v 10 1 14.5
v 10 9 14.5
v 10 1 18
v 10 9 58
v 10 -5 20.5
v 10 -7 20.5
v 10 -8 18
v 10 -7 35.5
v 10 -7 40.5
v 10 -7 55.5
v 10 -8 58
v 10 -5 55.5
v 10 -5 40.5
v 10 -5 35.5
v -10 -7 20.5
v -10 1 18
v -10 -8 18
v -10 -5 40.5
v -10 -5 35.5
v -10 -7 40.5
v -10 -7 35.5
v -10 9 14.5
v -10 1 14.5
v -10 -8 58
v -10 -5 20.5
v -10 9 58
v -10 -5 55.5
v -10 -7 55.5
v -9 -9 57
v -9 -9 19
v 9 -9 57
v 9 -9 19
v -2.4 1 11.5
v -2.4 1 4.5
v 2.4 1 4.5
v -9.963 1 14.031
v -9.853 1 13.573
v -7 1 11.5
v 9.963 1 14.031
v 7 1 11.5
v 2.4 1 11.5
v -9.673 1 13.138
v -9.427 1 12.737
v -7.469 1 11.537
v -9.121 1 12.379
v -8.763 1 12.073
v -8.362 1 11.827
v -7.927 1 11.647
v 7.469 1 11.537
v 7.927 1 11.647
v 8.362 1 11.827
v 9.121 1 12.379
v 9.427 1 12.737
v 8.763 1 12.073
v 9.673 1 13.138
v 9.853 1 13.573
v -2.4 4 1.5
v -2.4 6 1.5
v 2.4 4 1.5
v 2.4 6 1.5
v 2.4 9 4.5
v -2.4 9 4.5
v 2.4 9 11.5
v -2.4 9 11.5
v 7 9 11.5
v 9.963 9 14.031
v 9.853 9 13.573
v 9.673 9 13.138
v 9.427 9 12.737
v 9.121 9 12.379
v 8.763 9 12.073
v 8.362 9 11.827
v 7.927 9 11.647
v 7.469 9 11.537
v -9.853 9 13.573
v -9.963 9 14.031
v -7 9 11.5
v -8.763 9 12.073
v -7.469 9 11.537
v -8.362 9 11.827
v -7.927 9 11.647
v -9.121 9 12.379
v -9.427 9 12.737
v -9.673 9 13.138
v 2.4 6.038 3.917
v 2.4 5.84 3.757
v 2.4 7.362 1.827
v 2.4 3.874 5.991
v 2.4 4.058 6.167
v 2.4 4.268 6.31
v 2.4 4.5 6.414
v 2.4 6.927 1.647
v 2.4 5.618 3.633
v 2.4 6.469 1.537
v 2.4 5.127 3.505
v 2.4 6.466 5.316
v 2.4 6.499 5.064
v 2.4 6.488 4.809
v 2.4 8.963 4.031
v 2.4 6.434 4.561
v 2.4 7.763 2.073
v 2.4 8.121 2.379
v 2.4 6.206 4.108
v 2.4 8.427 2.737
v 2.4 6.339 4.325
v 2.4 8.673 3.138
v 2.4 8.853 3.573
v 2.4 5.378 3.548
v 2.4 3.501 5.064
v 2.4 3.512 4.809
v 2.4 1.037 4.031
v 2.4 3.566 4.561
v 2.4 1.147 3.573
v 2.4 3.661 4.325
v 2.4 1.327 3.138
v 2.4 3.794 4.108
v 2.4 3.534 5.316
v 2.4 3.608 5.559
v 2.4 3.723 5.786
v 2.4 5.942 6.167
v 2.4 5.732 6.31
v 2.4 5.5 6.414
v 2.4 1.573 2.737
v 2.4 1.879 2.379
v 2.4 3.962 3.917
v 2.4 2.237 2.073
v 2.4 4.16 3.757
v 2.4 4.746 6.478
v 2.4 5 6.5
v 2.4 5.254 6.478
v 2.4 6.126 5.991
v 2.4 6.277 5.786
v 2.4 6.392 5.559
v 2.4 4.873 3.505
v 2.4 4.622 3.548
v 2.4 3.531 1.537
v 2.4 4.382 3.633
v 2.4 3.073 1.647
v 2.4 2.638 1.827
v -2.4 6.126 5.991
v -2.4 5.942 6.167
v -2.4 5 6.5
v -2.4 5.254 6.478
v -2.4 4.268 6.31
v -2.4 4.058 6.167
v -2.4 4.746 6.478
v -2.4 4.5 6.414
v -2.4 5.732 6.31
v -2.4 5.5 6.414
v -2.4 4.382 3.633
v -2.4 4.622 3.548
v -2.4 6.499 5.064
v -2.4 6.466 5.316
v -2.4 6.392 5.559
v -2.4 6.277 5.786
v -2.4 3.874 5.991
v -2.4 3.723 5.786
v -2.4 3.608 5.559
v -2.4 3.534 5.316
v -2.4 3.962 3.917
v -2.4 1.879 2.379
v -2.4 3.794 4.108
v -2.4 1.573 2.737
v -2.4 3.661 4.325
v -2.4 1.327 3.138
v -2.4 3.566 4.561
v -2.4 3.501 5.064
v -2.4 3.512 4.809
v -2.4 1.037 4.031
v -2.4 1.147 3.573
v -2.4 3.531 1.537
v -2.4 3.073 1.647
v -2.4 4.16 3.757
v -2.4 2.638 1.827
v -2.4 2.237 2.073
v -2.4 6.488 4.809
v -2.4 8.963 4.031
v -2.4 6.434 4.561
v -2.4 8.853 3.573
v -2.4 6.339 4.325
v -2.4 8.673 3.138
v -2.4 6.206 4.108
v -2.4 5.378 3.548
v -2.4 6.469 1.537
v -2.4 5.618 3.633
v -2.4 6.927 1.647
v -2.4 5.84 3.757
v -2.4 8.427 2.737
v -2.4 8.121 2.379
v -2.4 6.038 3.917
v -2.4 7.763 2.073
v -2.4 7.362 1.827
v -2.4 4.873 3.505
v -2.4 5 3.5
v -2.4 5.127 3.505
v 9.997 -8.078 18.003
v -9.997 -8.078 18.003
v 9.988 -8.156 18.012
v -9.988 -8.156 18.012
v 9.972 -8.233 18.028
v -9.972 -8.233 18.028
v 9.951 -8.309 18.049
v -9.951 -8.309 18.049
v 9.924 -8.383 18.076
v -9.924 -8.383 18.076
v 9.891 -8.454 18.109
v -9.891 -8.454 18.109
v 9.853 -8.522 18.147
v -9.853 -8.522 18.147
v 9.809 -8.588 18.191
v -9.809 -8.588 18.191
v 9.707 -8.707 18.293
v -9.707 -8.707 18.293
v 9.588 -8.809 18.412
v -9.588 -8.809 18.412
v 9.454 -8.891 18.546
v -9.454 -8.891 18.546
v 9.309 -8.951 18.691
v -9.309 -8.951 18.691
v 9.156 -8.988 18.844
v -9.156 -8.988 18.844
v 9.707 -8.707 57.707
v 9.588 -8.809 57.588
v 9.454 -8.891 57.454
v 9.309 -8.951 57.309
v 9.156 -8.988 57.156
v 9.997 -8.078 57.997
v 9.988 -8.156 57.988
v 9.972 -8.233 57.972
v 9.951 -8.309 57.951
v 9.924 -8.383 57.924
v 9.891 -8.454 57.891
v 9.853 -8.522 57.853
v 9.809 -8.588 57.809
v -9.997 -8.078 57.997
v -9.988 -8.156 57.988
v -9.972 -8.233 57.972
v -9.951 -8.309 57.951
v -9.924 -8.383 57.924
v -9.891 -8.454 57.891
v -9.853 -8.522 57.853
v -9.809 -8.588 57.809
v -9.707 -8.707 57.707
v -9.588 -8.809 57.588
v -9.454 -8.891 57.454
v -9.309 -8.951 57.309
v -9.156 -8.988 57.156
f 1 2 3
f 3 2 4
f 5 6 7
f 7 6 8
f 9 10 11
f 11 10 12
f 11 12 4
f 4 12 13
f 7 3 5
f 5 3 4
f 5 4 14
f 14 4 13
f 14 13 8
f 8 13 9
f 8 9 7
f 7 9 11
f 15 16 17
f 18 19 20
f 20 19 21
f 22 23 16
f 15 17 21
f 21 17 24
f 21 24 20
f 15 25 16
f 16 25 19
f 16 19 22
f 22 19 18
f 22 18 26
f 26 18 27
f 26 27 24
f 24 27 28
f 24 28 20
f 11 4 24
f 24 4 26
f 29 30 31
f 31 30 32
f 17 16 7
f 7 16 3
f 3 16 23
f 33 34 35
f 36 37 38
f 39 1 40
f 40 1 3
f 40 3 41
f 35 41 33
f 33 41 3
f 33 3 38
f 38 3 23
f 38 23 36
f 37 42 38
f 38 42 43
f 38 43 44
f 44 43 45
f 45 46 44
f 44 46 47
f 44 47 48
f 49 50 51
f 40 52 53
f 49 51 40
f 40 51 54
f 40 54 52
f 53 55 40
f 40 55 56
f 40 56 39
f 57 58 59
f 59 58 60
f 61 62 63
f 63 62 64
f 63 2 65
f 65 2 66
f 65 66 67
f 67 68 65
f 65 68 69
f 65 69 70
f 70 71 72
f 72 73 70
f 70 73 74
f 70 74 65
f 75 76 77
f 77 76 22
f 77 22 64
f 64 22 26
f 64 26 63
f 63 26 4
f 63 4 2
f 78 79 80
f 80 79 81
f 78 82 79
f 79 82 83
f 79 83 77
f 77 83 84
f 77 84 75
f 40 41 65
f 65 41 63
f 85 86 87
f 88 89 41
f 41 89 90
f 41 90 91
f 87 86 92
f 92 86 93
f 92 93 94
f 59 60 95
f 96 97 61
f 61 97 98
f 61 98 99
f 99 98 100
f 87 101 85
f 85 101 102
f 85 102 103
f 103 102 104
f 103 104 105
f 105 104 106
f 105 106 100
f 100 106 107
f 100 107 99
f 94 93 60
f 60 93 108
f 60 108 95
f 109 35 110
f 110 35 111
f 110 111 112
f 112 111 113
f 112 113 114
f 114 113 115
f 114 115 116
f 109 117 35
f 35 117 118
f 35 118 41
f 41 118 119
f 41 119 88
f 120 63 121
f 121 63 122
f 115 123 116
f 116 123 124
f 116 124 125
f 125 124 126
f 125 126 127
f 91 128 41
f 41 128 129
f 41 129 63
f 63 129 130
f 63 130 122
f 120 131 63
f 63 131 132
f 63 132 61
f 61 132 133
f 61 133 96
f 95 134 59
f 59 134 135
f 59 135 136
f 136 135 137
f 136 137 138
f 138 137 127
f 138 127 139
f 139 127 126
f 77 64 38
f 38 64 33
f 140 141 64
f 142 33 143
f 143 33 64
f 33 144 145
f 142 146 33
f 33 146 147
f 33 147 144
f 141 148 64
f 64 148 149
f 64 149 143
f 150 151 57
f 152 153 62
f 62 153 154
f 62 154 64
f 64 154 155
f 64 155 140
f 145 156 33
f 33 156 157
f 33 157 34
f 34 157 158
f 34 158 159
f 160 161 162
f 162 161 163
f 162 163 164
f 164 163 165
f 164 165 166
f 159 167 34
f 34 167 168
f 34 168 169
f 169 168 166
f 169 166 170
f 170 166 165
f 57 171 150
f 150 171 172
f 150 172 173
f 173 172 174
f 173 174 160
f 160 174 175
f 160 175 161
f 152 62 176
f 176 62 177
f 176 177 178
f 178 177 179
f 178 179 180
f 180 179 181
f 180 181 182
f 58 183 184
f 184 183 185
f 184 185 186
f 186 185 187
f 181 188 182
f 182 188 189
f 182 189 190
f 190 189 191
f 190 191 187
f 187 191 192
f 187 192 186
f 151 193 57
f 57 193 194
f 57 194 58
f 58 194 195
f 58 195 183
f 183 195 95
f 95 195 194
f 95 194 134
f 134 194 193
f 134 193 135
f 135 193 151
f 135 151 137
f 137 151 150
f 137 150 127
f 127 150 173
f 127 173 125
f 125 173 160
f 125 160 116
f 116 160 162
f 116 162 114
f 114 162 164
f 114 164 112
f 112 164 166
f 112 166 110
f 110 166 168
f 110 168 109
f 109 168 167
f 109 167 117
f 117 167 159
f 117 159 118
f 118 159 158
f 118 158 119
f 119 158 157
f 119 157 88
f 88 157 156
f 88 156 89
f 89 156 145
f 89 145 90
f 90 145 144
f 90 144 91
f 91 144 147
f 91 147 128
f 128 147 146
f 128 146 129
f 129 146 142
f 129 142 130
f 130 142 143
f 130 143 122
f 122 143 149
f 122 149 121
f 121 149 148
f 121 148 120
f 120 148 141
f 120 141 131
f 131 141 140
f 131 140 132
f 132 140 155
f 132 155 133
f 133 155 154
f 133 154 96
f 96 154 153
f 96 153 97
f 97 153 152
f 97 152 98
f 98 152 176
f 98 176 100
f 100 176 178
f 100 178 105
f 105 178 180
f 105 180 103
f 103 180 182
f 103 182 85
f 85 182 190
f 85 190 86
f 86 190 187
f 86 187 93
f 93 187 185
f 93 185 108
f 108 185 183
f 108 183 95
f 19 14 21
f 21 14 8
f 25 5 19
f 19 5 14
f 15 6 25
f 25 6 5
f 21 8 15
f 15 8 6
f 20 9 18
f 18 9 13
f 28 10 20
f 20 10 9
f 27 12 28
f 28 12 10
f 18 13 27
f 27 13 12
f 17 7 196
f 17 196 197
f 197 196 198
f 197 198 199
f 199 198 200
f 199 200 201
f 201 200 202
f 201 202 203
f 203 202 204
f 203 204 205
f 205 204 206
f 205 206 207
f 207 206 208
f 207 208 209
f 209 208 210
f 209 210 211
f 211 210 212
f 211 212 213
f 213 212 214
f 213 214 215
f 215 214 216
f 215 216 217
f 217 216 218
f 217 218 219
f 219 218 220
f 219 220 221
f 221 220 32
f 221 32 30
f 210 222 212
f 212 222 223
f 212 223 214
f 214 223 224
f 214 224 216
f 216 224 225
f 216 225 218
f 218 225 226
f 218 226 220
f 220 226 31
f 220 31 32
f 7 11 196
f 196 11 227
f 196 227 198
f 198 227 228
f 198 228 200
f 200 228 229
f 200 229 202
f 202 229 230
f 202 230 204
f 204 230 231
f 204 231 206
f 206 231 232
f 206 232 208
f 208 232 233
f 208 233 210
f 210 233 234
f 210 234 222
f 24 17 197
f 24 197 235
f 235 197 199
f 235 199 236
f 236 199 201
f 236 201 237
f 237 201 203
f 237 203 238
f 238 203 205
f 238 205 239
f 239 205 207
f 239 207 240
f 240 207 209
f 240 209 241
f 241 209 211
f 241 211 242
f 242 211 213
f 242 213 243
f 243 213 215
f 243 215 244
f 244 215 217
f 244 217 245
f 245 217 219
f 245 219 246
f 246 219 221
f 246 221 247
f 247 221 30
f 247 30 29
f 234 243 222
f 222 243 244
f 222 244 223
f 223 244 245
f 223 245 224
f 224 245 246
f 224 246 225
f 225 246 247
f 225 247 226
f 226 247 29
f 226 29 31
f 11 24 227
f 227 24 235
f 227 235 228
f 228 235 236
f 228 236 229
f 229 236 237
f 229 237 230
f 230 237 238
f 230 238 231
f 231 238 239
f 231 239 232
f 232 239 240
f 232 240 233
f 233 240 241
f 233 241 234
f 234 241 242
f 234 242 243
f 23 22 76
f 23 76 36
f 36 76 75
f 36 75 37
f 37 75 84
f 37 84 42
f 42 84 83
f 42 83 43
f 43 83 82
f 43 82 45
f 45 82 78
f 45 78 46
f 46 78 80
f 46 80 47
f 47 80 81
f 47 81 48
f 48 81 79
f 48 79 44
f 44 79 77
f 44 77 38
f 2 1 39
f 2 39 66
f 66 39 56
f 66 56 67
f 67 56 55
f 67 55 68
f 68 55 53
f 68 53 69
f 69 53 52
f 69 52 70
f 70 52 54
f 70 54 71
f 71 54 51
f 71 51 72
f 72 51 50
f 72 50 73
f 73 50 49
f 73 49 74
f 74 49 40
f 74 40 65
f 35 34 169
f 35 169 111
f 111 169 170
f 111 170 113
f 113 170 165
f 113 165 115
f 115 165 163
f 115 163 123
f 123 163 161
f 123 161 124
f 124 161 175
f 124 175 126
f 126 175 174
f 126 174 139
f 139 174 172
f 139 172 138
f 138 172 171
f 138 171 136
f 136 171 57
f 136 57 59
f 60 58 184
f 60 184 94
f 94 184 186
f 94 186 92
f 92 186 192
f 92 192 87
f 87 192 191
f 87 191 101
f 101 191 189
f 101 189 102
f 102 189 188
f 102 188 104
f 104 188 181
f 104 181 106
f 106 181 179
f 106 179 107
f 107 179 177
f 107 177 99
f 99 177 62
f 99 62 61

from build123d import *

# Parameters (mm, degrees)
CROQUIS1_R                 = 1.5
SALIENTE_EXTRUIR1_DEPTH    = 10
CORTAR_EXTRUIR1_DEPTH      = 60.539902586
CORTAR_EXTRUIR1_DEPTH_BACK = 60.539902586
CROQUIS2_W                 = 7.6
CROQUIS2_H                 = 10
CORTAR_EXTRUIR4_DEPTH      = 60.539902586
CORTAR_EXTRUIR4_DEPTH_BACK = 60.539902586
CROQUIS4_W                 = 15
CROQUIS4_H                 = 2
REDONDEO2_R                = 1
REDONDEO3_R                = 3


with BuildPart() as part:
    # Croquis1 → Saliente-Extruir1 (new, symmetric)
    with BuildSketch(Plane(origin=(0, 0, 0), x_dir=(0, 0, -1), z_dir=(1, 0, 0))):
        Polygon((-1.5, 9), (-58, 9), (-58, -9), (-18, -9), (-18, 1), (-1.5, 1), align=None)
        with Locations((-5, 5)):
            Circle(CROQUIS1_R, mode=Mode.SUBTRACT)
    extrude(amount=SALIENTE_EXTRUIR1_DEPTH, both=True)

    # Croquis2 → Cortar-Extruir1 (cut, two sides: drawn at the far end of the back side and taken through both)
    with BuildSketch(Plane(origin=(0, 0, 0), x_dir=(1, 0, 0), z_dir=(0, 1, 0)).offset(-CORTAR_EXTRUIR1_DEPTH_BACK)):
        with Locations((-6.2, -6.5)):
            Rectangle(CROQUIS2_W, CROQUIS2_H)
        with Locations((6.2, -6.5)):
            Rectangle(CROQUIS2_W, CROQUIS2_H)
    extrude(amount=CORTAR_EXTRUIR1_DEPTH + CORTAR_EXTRUIR1_DEPTH_BACK, mode=Mode.SUBTRACT)

    # Croquis4 → Cortar-Extruir4 (cut, two sides: drawn at the far end of the back side and taken through both)
    with BuildSketch(Plane(origin=(0, 0, 0), x_dir=(0, 0, -1), z_dir=(1, 0, 0)).offset(-CORTAR_EXTRUIR4_DEPTH_BACK)):
        with Locations((-48, -6)):
            Rectangle(CROQUIS4_W, CROQUIS4_H)
        with Locations((-28, -6)):
            Rectangle(CROQUIS4_W, CROQUIS4_H)
    extrude(amount=CORTAR_EXTRUIR4_DEPTH + CORTAR_EXTRUIR4_DEPTH_BACK, mode=Mode.SUBTRACT)

    # Redondeo2
    redondeo2_edges = [part.edges().sort_by_distance(p)[0] for p in [
        (0, -9, 18),
        (0, -9, 58),
        (-10, -9, 38),
        (10, -9, 38),
    ]]
    fillet(redondeo2_edges, radius=REDONDEO2_R)

    # Redondeo3
    redondeo3_edges = [part.edges().sort_by_distance(p)[0] for p in [
        (0, 9, 1.5),
        (0, 1, 1.5),
        (-10, 5, 11.5),
        (10, 5, 11.5),
    ]]
    fillet(redondeo3_edges, radius=REDONDEO3_R)


solid = part.part
